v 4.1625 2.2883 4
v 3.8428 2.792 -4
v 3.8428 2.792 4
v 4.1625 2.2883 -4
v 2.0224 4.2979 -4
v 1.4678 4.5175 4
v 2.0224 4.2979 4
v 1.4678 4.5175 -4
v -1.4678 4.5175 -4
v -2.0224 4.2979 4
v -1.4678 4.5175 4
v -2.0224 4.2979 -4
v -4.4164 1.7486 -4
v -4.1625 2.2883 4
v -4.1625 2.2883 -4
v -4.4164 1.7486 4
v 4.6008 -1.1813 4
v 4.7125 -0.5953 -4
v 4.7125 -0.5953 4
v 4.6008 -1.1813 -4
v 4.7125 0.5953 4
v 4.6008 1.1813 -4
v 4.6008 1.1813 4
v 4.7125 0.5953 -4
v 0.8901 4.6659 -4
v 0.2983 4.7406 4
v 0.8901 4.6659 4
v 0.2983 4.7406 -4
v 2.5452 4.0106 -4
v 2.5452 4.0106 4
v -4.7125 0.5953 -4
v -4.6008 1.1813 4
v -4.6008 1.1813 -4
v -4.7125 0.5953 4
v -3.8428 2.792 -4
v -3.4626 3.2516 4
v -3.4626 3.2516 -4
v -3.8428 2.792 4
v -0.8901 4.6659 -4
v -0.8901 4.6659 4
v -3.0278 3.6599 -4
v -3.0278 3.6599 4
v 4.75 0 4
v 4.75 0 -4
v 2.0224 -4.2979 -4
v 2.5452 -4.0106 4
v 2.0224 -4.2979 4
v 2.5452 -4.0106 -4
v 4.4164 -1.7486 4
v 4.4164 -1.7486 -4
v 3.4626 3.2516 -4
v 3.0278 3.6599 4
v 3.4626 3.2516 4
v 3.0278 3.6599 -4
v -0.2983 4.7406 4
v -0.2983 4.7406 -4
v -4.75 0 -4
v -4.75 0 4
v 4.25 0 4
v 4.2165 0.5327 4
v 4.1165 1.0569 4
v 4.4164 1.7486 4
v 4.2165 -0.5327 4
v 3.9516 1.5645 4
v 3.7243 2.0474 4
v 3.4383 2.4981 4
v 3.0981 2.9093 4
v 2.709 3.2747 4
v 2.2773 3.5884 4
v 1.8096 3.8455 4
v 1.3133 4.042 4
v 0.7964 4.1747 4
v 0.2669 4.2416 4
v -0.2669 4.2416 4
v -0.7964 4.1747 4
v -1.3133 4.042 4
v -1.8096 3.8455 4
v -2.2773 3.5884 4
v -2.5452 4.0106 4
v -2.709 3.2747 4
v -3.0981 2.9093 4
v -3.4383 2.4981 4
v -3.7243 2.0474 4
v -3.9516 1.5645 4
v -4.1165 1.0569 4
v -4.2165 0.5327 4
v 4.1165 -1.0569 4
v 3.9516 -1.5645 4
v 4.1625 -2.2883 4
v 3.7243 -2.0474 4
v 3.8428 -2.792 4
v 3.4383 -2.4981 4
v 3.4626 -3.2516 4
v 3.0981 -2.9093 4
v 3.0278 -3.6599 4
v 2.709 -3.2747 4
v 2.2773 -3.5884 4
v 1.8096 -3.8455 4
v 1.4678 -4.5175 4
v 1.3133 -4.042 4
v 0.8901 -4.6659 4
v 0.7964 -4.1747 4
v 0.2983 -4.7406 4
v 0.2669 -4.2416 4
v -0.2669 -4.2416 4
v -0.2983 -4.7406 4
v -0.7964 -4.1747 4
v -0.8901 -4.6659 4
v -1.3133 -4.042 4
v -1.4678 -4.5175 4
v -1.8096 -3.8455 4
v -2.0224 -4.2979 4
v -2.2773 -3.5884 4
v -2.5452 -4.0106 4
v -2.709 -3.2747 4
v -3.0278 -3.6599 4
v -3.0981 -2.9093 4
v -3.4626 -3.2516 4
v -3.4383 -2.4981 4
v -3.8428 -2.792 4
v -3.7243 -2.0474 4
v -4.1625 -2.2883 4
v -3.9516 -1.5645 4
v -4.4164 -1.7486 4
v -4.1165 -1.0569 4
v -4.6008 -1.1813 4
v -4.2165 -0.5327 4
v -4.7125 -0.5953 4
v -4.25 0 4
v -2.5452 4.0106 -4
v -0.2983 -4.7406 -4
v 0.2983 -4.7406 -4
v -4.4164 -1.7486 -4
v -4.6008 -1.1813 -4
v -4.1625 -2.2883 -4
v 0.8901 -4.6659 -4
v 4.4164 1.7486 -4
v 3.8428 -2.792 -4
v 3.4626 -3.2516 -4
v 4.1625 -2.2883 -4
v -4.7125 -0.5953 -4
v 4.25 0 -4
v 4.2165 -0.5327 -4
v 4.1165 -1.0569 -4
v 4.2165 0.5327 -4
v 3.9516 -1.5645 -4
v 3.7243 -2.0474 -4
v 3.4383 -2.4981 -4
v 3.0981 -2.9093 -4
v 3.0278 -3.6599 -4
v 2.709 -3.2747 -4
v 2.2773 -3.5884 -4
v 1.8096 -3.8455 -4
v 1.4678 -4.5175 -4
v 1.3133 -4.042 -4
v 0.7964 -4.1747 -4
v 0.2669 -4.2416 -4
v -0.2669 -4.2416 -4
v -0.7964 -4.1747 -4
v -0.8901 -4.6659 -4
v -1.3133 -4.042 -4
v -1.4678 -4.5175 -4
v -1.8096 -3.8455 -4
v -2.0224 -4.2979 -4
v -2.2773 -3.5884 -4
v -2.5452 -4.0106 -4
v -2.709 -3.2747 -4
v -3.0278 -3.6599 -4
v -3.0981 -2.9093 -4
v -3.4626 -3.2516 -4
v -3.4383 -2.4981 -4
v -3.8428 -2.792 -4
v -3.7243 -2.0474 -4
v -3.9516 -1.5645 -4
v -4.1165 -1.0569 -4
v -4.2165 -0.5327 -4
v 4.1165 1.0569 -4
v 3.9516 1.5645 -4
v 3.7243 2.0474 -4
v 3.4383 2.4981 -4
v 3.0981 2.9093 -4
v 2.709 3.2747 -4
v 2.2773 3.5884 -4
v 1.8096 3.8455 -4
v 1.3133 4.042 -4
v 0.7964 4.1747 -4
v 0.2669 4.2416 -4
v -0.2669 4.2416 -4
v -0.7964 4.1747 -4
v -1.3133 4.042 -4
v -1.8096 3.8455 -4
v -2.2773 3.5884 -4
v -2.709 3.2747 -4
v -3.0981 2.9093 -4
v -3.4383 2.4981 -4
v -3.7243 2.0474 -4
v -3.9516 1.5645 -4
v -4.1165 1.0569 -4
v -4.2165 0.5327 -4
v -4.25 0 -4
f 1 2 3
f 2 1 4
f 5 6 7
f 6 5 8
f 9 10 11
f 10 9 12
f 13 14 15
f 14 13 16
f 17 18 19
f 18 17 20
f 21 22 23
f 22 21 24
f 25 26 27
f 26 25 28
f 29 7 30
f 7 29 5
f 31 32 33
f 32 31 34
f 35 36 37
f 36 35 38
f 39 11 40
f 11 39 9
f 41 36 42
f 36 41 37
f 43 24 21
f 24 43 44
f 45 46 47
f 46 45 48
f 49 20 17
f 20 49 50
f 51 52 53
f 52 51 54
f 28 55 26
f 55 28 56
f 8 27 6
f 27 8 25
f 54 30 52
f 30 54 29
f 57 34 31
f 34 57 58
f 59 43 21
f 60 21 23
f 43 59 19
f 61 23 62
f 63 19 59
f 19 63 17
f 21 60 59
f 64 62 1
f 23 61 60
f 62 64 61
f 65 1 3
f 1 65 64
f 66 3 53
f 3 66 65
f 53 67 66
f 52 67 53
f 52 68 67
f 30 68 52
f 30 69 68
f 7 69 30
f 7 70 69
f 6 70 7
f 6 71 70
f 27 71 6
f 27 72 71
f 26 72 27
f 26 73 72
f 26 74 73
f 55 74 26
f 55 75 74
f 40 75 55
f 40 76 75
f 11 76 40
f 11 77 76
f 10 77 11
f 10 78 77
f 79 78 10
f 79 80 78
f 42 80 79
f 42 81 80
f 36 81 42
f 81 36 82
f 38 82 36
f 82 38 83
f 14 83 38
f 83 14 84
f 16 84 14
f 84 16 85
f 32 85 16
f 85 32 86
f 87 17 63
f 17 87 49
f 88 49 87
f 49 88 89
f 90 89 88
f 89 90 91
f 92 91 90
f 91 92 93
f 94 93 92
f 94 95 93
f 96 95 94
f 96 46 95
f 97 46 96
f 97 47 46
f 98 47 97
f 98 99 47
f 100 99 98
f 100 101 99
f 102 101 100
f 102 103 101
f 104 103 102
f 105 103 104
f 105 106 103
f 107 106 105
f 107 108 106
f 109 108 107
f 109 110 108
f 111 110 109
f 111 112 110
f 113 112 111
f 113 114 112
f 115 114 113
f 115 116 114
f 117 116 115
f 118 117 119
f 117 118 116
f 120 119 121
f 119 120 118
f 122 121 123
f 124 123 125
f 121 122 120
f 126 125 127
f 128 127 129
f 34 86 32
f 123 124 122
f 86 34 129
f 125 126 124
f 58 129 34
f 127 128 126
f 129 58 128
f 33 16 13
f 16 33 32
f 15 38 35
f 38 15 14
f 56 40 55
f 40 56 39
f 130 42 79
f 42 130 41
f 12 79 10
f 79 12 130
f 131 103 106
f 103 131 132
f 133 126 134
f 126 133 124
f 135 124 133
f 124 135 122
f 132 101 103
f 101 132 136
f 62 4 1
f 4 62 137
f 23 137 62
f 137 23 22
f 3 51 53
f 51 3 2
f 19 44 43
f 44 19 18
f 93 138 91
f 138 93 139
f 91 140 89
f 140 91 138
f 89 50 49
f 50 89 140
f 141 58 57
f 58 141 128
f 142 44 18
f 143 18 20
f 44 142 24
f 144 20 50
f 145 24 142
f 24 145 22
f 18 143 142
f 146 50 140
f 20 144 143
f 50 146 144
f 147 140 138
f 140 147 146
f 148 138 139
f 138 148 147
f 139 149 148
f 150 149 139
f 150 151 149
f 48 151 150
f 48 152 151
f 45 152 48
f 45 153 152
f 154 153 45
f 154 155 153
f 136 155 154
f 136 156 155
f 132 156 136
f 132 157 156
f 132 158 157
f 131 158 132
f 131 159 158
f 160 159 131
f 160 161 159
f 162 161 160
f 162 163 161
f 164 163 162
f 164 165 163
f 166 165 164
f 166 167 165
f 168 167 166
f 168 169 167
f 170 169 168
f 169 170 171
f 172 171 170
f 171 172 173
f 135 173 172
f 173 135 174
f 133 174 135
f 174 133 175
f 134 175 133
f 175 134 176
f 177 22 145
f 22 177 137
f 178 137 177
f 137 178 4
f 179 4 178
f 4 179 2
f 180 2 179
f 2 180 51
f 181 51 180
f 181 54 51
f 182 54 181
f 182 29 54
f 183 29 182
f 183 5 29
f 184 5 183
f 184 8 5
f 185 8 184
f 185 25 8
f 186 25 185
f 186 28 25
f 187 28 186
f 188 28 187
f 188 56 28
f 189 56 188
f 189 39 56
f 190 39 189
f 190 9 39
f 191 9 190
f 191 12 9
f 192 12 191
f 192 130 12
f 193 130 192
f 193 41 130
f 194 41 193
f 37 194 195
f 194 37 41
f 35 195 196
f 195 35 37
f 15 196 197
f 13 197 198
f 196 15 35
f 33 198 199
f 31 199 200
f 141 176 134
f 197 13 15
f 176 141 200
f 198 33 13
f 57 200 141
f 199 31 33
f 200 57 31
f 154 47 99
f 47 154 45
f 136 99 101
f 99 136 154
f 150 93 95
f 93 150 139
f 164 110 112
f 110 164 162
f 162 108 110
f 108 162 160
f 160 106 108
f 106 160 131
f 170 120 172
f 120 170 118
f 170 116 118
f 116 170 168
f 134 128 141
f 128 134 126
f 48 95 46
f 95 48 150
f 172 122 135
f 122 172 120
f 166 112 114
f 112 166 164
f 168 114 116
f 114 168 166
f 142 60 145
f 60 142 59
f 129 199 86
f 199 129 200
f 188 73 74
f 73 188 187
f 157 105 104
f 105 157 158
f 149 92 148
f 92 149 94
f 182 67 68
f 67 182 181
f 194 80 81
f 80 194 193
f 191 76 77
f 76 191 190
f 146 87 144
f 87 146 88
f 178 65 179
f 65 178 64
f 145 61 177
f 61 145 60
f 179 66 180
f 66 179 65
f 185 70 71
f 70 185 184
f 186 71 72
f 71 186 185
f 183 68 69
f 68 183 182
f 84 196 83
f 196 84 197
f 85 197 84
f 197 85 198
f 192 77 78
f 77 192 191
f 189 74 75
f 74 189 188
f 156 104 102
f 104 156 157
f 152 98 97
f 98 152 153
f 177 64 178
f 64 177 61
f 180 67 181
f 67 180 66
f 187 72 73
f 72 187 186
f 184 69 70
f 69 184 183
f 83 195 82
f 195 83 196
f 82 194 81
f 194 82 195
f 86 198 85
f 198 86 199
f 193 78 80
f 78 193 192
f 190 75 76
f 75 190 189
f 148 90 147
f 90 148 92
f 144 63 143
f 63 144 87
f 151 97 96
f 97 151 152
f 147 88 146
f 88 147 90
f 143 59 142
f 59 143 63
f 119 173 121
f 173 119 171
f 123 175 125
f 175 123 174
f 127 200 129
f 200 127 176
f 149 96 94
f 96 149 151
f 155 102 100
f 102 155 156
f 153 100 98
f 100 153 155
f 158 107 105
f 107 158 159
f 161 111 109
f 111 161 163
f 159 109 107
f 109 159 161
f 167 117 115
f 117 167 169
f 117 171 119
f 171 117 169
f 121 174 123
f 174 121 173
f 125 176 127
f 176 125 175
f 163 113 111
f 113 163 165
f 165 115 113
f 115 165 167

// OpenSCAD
$fn = 50;


difference() {
	union() {
		translate(v = [0, 0, -4.0000000000]) {
			cylinder(h = 8, r = 4.7500000000);
		}
	}
	union() {
		translate(v = [0, 0, -100.0000000000]) {
			cylinder(h = 200, r = 4.2500000000);
		}
	}
}
